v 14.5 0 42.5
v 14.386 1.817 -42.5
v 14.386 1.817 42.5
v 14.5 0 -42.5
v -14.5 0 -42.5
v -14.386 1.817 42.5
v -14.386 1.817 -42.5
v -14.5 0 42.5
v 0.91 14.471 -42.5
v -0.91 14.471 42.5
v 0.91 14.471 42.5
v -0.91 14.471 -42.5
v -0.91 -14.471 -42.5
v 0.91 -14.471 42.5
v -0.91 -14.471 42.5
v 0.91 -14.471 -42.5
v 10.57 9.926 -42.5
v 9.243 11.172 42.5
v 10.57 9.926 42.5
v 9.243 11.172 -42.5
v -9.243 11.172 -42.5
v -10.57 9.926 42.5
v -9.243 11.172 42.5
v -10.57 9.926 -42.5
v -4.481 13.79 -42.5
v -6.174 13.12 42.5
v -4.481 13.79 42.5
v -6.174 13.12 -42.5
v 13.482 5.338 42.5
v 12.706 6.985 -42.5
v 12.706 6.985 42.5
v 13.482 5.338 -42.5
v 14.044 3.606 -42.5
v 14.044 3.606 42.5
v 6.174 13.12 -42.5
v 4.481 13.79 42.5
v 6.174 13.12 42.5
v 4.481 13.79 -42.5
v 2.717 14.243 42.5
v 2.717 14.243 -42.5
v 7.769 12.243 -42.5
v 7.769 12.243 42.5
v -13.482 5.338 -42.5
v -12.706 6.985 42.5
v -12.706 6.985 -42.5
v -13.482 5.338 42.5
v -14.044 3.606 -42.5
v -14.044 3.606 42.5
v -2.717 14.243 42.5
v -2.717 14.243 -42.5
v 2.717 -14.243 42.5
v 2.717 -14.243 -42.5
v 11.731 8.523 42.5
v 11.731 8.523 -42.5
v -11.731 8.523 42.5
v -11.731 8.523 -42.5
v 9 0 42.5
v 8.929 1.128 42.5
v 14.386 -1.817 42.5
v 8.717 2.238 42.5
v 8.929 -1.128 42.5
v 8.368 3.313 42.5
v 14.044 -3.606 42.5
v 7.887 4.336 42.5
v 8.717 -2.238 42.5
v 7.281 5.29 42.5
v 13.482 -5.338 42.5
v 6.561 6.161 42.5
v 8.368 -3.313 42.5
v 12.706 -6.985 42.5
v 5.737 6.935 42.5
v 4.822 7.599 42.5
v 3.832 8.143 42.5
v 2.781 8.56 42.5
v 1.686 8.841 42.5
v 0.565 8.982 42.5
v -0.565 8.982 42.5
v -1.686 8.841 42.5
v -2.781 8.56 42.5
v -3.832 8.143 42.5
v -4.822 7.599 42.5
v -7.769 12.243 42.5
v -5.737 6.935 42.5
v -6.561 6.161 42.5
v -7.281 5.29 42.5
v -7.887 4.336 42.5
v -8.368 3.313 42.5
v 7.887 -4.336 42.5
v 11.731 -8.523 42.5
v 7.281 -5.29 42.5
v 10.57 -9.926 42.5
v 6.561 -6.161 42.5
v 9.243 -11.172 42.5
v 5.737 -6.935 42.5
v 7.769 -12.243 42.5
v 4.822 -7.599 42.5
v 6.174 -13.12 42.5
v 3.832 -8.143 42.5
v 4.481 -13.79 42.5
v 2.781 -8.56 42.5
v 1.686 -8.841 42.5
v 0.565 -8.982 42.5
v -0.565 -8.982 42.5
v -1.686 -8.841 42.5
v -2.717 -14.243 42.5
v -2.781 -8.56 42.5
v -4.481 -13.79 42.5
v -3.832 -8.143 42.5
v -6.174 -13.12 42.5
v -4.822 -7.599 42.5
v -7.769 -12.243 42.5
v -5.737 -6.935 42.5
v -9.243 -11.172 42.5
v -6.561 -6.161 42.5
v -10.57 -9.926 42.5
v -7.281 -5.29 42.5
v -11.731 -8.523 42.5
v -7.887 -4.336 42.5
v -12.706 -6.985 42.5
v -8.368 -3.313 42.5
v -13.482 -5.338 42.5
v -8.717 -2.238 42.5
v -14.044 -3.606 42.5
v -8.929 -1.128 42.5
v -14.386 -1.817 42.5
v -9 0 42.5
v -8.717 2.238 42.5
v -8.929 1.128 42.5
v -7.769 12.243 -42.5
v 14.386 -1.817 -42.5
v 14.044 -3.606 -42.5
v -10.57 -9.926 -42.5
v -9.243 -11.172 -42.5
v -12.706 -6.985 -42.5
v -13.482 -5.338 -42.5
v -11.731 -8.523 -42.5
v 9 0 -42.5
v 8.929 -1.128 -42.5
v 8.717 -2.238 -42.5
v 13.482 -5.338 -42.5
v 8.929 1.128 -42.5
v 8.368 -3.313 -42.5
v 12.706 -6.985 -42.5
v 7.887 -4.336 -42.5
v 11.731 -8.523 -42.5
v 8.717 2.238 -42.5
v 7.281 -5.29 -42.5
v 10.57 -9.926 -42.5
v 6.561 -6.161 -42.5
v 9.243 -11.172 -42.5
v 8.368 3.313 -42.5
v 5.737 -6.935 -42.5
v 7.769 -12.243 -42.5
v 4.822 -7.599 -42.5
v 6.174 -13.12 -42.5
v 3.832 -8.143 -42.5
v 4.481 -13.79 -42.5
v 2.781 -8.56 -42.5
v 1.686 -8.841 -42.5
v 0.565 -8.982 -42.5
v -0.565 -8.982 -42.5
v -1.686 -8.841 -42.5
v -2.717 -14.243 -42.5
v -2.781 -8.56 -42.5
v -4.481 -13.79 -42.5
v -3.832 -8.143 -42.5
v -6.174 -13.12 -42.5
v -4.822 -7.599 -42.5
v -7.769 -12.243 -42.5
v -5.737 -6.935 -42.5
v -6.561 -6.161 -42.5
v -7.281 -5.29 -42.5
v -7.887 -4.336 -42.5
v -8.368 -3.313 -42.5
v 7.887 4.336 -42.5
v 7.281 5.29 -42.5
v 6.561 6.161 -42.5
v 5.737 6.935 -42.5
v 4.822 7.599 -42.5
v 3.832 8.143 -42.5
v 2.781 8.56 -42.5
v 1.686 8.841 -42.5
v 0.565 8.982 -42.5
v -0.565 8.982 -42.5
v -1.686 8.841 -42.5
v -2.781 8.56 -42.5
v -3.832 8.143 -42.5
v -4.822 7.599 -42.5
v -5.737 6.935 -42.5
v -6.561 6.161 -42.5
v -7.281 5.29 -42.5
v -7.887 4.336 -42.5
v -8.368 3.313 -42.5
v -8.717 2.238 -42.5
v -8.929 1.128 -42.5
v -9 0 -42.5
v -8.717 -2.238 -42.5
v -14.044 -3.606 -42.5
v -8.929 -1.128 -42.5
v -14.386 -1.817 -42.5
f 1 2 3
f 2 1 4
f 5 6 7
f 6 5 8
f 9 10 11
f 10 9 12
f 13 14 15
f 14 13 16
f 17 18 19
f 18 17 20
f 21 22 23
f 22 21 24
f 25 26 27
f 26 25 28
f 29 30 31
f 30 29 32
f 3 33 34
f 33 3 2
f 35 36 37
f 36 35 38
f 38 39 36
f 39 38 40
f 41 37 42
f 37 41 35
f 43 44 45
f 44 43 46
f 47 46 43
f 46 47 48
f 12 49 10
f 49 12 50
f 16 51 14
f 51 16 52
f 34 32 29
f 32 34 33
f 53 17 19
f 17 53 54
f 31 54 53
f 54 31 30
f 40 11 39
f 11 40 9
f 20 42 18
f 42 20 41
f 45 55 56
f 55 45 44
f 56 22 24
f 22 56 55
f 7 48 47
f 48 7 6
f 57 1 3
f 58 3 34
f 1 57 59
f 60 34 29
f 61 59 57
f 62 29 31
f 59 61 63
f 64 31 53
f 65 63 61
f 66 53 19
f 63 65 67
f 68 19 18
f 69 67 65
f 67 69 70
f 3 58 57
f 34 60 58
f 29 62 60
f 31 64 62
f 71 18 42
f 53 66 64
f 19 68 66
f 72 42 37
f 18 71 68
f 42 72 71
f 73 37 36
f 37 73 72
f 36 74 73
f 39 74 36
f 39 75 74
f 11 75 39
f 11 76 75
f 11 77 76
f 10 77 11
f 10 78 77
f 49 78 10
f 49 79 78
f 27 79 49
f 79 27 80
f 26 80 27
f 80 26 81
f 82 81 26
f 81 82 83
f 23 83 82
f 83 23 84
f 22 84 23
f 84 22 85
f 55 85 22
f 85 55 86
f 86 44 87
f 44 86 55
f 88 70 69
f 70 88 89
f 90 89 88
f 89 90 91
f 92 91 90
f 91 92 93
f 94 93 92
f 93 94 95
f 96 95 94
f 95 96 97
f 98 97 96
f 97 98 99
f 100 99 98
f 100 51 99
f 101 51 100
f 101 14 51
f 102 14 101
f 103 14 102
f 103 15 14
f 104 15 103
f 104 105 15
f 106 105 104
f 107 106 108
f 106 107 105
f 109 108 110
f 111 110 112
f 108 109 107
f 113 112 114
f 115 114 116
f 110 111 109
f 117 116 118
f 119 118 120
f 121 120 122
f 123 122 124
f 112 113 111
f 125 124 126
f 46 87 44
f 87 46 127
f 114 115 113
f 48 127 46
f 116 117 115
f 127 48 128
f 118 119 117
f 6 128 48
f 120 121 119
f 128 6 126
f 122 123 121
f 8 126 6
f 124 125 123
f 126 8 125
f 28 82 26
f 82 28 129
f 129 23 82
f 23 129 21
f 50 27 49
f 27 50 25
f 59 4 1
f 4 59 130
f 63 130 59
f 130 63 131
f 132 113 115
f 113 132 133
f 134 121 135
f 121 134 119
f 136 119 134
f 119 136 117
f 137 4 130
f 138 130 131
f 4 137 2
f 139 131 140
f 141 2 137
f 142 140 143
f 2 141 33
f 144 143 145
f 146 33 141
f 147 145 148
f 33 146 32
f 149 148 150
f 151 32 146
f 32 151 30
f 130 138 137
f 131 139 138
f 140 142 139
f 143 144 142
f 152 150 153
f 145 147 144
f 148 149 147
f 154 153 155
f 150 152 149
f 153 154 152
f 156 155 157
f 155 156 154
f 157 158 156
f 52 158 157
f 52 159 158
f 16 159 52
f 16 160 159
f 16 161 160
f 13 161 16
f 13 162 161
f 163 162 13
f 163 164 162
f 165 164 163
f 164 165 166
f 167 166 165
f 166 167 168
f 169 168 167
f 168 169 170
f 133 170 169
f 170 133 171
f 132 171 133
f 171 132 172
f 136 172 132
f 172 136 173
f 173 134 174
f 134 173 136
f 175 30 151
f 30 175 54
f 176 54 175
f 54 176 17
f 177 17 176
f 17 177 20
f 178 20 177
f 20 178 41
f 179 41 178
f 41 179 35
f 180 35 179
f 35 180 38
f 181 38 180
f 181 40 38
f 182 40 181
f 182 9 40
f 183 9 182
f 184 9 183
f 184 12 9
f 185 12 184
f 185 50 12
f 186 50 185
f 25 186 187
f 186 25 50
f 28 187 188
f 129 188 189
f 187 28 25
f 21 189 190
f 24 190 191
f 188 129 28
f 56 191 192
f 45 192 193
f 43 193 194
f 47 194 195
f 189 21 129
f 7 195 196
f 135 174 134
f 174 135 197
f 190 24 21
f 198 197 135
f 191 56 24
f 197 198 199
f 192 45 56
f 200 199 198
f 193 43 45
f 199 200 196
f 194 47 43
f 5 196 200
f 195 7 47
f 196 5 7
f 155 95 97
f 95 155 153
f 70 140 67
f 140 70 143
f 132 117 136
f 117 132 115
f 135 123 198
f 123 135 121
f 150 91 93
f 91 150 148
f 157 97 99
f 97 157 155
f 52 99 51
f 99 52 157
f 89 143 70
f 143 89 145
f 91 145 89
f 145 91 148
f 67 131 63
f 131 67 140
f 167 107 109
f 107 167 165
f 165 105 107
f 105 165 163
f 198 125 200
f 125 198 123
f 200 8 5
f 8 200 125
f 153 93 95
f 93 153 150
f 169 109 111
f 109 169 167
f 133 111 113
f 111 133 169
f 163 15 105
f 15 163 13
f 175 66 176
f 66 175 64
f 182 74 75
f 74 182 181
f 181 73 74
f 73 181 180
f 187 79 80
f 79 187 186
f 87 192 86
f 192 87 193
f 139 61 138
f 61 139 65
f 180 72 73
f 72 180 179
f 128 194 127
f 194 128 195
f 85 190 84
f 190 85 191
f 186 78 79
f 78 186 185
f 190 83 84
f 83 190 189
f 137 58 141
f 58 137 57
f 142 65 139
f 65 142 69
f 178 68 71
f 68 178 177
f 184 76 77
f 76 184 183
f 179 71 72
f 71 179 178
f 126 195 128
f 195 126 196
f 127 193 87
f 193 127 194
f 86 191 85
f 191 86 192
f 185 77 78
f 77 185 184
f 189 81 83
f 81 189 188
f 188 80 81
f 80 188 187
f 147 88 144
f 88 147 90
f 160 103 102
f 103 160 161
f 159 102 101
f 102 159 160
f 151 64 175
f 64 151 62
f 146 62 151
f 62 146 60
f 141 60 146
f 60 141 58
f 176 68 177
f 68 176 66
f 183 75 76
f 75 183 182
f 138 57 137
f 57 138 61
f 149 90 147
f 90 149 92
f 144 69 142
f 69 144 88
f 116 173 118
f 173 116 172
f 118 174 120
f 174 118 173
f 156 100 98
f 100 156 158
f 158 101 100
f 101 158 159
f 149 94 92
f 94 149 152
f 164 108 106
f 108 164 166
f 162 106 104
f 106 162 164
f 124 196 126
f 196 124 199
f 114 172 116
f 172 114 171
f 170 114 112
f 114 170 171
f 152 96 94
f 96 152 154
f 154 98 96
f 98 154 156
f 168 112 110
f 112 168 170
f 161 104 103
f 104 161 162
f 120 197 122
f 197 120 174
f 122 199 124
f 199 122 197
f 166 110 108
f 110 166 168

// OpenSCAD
$fn = 50;


difference() {
	union() {
		translate(v = [0, 0, -42.5000000000]) {
			cylinder(h = 85, r = 14.5000000000);
		}
	}
	union() {
		translate(v = [0, 0, -100.0000000000]) {
			cylinder(h = 200, r = 9);
		}
	}
}
